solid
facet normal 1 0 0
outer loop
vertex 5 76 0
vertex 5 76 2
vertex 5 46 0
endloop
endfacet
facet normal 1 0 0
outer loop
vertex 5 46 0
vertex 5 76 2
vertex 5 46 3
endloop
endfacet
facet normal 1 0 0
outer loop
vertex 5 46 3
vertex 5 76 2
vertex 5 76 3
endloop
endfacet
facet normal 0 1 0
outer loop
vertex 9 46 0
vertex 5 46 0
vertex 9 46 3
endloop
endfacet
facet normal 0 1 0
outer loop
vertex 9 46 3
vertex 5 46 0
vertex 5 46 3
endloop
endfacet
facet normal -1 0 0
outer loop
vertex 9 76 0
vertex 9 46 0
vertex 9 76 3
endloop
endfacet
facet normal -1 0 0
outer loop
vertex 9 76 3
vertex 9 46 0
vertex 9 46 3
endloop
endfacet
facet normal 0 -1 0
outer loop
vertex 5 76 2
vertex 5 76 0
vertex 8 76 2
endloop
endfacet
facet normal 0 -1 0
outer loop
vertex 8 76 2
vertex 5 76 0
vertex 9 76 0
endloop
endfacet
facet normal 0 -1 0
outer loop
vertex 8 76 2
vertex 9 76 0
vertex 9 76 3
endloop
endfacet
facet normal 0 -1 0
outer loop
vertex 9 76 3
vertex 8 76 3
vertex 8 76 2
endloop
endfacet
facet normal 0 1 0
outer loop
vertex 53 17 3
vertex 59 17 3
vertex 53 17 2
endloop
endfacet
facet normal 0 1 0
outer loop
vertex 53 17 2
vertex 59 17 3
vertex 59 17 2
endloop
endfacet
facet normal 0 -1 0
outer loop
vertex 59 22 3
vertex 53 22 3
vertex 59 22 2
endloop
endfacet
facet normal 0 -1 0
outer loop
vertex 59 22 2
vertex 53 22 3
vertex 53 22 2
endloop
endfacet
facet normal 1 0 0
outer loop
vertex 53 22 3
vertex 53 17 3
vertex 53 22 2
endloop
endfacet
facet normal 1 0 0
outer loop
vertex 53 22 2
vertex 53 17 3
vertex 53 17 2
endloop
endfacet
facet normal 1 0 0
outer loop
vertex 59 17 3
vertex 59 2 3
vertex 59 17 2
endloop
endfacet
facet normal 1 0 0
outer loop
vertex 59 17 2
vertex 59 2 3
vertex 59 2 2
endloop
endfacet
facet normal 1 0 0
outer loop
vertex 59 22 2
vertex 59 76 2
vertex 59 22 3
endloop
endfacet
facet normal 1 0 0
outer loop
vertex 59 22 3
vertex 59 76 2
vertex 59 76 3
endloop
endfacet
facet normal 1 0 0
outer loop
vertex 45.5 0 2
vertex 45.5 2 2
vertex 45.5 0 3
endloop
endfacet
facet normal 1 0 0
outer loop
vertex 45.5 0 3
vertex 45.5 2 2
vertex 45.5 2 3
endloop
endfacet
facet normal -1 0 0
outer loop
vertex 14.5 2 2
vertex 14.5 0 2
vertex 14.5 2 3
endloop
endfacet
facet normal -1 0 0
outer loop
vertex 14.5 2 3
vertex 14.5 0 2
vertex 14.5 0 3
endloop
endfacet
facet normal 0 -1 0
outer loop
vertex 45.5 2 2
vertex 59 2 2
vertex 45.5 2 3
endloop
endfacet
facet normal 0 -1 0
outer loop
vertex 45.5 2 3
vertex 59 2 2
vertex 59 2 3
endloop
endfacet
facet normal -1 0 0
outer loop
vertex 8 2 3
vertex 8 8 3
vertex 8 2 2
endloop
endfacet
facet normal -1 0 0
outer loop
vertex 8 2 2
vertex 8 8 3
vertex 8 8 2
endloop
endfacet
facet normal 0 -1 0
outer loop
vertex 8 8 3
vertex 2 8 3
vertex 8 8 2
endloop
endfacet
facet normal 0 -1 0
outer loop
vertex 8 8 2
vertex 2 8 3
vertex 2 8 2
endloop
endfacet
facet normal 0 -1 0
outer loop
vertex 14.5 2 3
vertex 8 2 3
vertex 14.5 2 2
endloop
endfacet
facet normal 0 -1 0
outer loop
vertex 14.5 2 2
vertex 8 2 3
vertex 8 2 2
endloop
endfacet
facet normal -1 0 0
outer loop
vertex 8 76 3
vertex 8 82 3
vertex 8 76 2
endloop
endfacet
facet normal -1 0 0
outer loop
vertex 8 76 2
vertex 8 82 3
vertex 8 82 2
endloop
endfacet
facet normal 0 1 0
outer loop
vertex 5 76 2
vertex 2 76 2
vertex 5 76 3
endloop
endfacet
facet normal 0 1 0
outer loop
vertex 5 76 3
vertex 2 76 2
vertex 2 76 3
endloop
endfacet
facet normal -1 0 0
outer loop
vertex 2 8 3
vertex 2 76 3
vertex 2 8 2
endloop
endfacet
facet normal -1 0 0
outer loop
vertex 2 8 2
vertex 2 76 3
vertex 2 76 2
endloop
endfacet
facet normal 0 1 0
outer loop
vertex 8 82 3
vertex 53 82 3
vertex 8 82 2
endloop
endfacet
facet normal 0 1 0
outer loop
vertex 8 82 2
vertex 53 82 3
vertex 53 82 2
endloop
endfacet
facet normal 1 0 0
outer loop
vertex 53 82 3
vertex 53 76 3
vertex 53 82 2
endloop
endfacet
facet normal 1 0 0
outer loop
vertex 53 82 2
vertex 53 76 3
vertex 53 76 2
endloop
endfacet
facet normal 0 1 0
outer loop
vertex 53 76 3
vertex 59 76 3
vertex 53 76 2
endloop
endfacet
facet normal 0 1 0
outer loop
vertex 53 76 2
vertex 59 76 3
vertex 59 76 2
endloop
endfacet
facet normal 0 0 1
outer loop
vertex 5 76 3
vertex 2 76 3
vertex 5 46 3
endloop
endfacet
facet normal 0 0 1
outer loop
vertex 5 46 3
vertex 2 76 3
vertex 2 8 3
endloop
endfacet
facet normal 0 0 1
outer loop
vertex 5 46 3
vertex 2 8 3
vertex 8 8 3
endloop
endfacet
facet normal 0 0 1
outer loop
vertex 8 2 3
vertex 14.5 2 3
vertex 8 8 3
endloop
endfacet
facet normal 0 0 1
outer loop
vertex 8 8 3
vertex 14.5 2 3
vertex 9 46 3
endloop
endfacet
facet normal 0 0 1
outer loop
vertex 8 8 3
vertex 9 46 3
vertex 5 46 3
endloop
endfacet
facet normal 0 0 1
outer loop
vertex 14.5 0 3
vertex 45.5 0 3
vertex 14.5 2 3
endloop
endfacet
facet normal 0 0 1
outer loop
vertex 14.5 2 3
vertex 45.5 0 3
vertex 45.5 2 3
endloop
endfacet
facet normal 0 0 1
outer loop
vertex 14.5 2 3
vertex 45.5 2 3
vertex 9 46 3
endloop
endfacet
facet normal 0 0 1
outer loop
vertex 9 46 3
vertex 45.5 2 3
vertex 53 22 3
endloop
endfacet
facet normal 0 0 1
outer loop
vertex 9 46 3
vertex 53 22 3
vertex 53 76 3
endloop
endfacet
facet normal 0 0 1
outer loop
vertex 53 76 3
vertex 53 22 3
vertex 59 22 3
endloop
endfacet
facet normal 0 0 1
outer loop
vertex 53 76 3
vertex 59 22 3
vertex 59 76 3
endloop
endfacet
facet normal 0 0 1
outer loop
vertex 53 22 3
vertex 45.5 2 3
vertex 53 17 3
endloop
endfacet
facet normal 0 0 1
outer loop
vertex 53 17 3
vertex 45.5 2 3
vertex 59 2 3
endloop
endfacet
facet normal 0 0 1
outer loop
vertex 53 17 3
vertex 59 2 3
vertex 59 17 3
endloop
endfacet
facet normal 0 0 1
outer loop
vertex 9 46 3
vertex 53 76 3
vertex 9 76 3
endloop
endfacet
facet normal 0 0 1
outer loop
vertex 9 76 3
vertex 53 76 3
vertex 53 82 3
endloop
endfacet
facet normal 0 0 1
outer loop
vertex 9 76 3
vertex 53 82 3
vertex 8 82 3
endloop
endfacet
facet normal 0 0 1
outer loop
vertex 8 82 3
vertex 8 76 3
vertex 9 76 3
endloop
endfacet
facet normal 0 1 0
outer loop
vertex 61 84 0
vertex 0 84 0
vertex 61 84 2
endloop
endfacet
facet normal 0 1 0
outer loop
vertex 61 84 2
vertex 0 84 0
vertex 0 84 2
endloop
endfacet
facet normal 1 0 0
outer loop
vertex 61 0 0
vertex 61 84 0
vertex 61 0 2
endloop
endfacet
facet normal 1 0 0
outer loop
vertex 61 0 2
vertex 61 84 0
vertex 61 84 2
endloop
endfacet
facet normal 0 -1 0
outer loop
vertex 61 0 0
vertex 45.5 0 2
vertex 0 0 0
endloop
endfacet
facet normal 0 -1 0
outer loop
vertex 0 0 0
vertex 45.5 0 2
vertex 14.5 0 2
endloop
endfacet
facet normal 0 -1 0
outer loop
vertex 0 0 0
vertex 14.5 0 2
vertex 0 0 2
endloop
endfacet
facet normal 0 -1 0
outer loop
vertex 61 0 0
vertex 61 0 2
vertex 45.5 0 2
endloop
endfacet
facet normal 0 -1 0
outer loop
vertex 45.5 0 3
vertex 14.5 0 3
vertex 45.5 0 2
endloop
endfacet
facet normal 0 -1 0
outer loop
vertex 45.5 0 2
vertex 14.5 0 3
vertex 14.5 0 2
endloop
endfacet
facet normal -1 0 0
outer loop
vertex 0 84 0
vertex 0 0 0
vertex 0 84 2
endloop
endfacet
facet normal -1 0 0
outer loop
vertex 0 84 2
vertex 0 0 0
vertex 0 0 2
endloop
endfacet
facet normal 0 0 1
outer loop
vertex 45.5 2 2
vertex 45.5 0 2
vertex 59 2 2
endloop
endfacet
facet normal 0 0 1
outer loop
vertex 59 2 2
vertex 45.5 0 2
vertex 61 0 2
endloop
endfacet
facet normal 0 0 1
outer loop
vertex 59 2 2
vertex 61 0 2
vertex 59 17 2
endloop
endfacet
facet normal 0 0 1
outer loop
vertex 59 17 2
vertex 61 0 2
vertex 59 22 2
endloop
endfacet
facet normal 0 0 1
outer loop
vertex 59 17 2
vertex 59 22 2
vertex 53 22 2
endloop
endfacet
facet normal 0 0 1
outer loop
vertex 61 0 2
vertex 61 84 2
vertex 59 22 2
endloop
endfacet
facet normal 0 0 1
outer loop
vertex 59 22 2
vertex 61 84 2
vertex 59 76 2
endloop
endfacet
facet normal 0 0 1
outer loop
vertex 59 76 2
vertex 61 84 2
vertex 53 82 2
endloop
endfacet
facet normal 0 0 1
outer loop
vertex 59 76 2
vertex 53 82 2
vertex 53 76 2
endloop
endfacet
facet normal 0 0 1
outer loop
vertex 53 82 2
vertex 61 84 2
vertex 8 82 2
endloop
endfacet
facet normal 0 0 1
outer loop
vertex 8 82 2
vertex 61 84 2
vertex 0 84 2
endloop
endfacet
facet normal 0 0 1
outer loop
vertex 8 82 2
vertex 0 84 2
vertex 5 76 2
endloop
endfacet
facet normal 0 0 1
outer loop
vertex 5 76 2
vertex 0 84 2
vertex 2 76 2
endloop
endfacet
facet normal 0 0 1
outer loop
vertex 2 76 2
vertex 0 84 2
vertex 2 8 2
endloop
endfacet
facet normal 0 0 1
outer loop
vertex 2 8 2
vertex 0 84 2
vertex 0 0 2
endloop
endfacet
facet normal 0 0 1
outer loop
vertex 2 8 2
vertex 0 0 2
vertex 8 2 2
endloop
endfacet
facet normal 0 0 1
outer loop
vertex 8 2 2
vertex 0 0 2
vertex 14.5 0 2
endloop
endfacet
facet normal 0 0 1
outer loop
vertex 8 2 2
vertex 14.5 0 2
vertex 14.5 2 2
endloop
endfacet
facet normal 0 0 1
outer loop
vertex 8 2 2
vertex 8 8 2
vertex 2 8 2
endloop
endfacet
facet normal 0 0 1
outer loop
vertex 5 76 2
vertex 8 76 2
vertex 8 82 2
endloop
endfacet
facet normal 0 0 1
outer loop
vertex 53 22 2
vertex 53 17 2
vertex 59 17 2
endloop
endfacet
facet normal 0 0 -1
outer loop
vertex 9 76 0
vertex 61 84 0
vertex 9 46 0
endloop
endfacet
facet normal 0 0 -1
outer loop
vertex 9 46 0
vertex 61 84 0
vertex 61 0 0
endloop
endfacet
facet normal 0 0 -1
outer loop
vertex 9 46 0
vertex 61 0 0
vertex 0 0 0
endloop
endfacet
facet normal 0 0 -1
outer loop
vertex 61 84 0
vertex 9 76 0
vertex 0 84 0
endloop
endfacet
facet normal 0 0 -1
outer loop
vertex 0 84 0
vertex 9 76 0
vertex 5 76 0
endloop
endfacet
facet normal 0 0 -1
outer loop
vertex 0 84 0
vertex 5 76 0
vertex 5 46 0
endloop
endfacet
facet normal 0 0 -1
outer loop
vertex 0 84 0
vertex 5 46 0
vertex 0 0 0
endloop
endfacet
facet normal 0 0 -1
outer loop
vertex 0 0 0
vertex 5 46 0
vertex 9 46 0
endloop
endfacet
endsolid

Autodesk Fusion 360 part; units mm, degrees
sketch "Sketch1" plane through (0, 0, 0) normal (0, 0, 1) x (1, 0, 0)
  line L0 (0, 0) -> (61, 0)
  line L1 (61, 0) -> (61, 84)
  line L2 (61, 84) -> (0, 84)
  line L3 (0, 84) -> (0, 0)
  dimension "d1" = 61
  dimension "d2" = 84
extrude "Extrude1" add sketch "Sketch1" along normal blind 2
sketch "Sketch2" plane through (0, 0, 2) normal (0, 0, 1) x (-1, 0, 0)
  line L0 (0, -84) -> (0, 0)
  line L1 (0, 0) -> (-61, 0)
  line L2 (-61, 0) -> (-61, -84)
  line L3 (-61, -84) -> (0, -84)
  line L4 (-2, -2) -> (-59, -2)
  line L5 (-59, -2) -> (-59, -82)
  line L6 (-59, -82) -> (-2, -82)
  line L7 (-2, -82) -> (-2, -2)
  dimension "d5" = 57
  dimension "d6" = 80
extrude "Extrude2" add sketch "Sketch2" along normal blind 1 contours L4 L5 L6 L7
sketch "Sketch3" plane through (0, 0, 3) normal (0, 0, 1) x (-1, 0, 0)
  line L0 (-2, -82) -> (-2, -2)
  line L1 (-2, -2) -> (-59, -2)
  line L2 (-59, -2) -> (-59, -82)
  line L3 (-59, -82) -> (-2, -82)
  line L4 (-59, -82) -> (-53, -82)
  line L5 (-53, -82) -> (-53, -76)
  line L6 (-53, -76) -> (-59, -76)
  line L7 (-59, -76) -> (-59, -82)
extrude "Extrude3" cut sketch "Sketch3" against normal blind 1 contours L2 L3 L4 L5 L6 L7
sketch "Sketch4" plane through (0, 0, 3) normal (0, 0, 1) x (-1, 0, 0)
  line L0 (-53, -76) -> (-53, -82)
  line L1 (-53, -82) -> (-2, -82)
  line L2 (-2, -82) -> (-2, -2)
  line L3 (-2, -2) -> (-59, -2)
  line L4 (-59, -2) -> (-59, -76)
  line L5 (-59, -76) -> (-53, -76)
  line L6 (-2, -82) -> (-8, -82)
  line L7 (-8, -82) -> (-8, -76)
  line L8 (-8, -76) -> (-2, -76)
  line L9 (-2, -76) -> (-2, -82)
extrude "Extrude4" cut sketch "Sketch4" against normal blind 1 contours L1 L2 L6 L7 L8 L9
sketch "Sketch5" plane through (0, 0, 3) normal (0, 0, 1) x (-1, 0, 0)
  line L0 (-8, -76) -> (-2, -76)
  line L1 (-2, -76) -> (-2, -2)
  line L2 (-2, -2) -> (-59, -2)
  line L3 (-59, -2) -> (-59, -76)
  line L4 (-59, -76) -> (-53, -76)
  line L5 (-53, -76) -> (-53, -82)
  line L6 (-53, -82) -> (-8, -82)
  line L7 (-8, -82) -> (-8, -76)
  line L8 (-2, -2) -> (-8, -2)
  line L9 (-8, -2) -> (-8, -8)
  line L10 (-8, -8) -> (-2, -8)
  line L11 (-2, -8) -> (-2, -2)
extrude "Extrude5" cut sketch "Sketch5" against normal blind 1 contours L1 L2 L8 L9 L10 L11
sketch "Sketch6" plane through (0, 0, 2) normal (0, 0, 1) x (-1, 0, 0)
  line L0 (-8, -82) -> (-53, -82)
  line L1 (-53, -82) -> (-53, -76)
  line L2 (-53, -76) -> (-59, -76)
  line L3 (-59, -76) -> (-59, -2)
  line L4 (-59, -2) -> (-8, -2)
  line L5 (-8, -2) -> (-8, -8)
  line L6 (-8, -8) -> (-2, -8)
  line L7 (-2, -8) -> (-2, -76)
  line L8 (-2, -76) -> (-8, -76)
  line L9 (-8, -76) -> (-8, -82)
  line L10 (0, -84) -> (0, 0)
  line L11 (0, 0) -> (-61, 0)
  line L12 (-61, 0) -> (-61, -84)
  line L13 (-61, -84) -> (0, -84)
  line L14 (-14.5, 0) -> (-45.5, 0)
  line L15 (-45.5, 0) -> (-45.5, -2)
  line L16 (-45.5, -2) -> (-14.5, -2)
  line L17 (-14.5, -2) -> (-14.5, 0)
  dimension "d15" = 31
  dimension "d16" = 2
extrude "Extrude6" add sketch "Sketch6" along normal blind 1 contours L4 L11 L14 L15 L16 L17
sketch "Sketch7" plane through (0, 0, 3) normal (0, 0, 1) x (-1, 0, 0)
  line L0 (-8, -8) -> (-8, -2)
  line L1 (-8, -2) -> (-14.5, -2)
  line L2 (-14.5, -2) -> (-14.5, 0)
  line L3 (-14.5, 0) -> (-45.5, 0)
  line L4 (-45.5, 0) -> (-45.5, -2)
  line L5 (-45.5, -2) -> (-59, -2)
  line L6 (-59, -2) -> (-59, -76)
  line L7 (-59, -76) -> (-53, -76)
  line L8 (-53, -76) -> (-53, -82)
  line L9 (-53, -82) -> (-8, -82)
  line L10 (-8, -82) -> (-8, -76)
  line L11 (-8, -76) -> (-2, -76)
  line L12 (-2, -76) -> (-2, -8)
  line L13 (-2, -8) -> (-8, -8)
  line L14 (-53, -17) -> (-59, -17)
  line L15 (-59, -17) -> (-59, -22)
  line L16 (-59, -22) -> (-53, -22)
  line L17 (-53, -22) -> (-53, -17)
  dimension "d19" = 5
extrude "Extrude7" cut sketch "Sketch7" against normal blind 1 contours L6 L14 L15 L16 L17
sketch "Sketch8" plane through (0, 0, 3) normal (0, 0, 1) x (-1, 0, 0)
  line L0 (-53, -22) -> (-59, -22)
  line L1 (-59, -22) -> (-59, -76)
  line L2 (-59, -76) -> (-53, -76)
  line L3 (-53, -76) -> (-53, -82)
  line L4 (-53, -82) -> (-8, -82)
  line L5 (-8, -82) -> (-8, -76)
  line L6 (-8, -76) -> (-2, -76)
  line L7 (-2, -76) -> (-2, -8)
  line L8 (-2, -8) -> (-8, -8)
  line L9 (-8, -8) -> (-8, -2)
  line L10 (-8, -2) -> (-14.5, -2)
  line L11 (-14.5, -2) -> (-14.5, 0)
  line L12 (-14.5, 0) -> (-45.5, 0)
  line L13 (-45.5, 0) -> (-45.5, -2)
  line L14 (-45.5, -2) -> (-59, -2)
  line L15 (-59, -2) -> (-59, -17)
  line L16 (-59, -17) -> (-53, -17)
  line L17 (-53, -17) -> (-53, -22)
  line L18 (-5, -76) -> (-9, -76)
  line L19 (-9, -76) -> (-9, -46)
  line L20 (-9, -46) -> (-5, -46)
  line L21 (-5, -46) -> (-5, -76)
  dimension "d22" = 4
  dimension "d23" = 30
extrude "Extrude8" cut sketch "Sketch8" against normal blind 4 contours L6 L18 L19 L20 L21
